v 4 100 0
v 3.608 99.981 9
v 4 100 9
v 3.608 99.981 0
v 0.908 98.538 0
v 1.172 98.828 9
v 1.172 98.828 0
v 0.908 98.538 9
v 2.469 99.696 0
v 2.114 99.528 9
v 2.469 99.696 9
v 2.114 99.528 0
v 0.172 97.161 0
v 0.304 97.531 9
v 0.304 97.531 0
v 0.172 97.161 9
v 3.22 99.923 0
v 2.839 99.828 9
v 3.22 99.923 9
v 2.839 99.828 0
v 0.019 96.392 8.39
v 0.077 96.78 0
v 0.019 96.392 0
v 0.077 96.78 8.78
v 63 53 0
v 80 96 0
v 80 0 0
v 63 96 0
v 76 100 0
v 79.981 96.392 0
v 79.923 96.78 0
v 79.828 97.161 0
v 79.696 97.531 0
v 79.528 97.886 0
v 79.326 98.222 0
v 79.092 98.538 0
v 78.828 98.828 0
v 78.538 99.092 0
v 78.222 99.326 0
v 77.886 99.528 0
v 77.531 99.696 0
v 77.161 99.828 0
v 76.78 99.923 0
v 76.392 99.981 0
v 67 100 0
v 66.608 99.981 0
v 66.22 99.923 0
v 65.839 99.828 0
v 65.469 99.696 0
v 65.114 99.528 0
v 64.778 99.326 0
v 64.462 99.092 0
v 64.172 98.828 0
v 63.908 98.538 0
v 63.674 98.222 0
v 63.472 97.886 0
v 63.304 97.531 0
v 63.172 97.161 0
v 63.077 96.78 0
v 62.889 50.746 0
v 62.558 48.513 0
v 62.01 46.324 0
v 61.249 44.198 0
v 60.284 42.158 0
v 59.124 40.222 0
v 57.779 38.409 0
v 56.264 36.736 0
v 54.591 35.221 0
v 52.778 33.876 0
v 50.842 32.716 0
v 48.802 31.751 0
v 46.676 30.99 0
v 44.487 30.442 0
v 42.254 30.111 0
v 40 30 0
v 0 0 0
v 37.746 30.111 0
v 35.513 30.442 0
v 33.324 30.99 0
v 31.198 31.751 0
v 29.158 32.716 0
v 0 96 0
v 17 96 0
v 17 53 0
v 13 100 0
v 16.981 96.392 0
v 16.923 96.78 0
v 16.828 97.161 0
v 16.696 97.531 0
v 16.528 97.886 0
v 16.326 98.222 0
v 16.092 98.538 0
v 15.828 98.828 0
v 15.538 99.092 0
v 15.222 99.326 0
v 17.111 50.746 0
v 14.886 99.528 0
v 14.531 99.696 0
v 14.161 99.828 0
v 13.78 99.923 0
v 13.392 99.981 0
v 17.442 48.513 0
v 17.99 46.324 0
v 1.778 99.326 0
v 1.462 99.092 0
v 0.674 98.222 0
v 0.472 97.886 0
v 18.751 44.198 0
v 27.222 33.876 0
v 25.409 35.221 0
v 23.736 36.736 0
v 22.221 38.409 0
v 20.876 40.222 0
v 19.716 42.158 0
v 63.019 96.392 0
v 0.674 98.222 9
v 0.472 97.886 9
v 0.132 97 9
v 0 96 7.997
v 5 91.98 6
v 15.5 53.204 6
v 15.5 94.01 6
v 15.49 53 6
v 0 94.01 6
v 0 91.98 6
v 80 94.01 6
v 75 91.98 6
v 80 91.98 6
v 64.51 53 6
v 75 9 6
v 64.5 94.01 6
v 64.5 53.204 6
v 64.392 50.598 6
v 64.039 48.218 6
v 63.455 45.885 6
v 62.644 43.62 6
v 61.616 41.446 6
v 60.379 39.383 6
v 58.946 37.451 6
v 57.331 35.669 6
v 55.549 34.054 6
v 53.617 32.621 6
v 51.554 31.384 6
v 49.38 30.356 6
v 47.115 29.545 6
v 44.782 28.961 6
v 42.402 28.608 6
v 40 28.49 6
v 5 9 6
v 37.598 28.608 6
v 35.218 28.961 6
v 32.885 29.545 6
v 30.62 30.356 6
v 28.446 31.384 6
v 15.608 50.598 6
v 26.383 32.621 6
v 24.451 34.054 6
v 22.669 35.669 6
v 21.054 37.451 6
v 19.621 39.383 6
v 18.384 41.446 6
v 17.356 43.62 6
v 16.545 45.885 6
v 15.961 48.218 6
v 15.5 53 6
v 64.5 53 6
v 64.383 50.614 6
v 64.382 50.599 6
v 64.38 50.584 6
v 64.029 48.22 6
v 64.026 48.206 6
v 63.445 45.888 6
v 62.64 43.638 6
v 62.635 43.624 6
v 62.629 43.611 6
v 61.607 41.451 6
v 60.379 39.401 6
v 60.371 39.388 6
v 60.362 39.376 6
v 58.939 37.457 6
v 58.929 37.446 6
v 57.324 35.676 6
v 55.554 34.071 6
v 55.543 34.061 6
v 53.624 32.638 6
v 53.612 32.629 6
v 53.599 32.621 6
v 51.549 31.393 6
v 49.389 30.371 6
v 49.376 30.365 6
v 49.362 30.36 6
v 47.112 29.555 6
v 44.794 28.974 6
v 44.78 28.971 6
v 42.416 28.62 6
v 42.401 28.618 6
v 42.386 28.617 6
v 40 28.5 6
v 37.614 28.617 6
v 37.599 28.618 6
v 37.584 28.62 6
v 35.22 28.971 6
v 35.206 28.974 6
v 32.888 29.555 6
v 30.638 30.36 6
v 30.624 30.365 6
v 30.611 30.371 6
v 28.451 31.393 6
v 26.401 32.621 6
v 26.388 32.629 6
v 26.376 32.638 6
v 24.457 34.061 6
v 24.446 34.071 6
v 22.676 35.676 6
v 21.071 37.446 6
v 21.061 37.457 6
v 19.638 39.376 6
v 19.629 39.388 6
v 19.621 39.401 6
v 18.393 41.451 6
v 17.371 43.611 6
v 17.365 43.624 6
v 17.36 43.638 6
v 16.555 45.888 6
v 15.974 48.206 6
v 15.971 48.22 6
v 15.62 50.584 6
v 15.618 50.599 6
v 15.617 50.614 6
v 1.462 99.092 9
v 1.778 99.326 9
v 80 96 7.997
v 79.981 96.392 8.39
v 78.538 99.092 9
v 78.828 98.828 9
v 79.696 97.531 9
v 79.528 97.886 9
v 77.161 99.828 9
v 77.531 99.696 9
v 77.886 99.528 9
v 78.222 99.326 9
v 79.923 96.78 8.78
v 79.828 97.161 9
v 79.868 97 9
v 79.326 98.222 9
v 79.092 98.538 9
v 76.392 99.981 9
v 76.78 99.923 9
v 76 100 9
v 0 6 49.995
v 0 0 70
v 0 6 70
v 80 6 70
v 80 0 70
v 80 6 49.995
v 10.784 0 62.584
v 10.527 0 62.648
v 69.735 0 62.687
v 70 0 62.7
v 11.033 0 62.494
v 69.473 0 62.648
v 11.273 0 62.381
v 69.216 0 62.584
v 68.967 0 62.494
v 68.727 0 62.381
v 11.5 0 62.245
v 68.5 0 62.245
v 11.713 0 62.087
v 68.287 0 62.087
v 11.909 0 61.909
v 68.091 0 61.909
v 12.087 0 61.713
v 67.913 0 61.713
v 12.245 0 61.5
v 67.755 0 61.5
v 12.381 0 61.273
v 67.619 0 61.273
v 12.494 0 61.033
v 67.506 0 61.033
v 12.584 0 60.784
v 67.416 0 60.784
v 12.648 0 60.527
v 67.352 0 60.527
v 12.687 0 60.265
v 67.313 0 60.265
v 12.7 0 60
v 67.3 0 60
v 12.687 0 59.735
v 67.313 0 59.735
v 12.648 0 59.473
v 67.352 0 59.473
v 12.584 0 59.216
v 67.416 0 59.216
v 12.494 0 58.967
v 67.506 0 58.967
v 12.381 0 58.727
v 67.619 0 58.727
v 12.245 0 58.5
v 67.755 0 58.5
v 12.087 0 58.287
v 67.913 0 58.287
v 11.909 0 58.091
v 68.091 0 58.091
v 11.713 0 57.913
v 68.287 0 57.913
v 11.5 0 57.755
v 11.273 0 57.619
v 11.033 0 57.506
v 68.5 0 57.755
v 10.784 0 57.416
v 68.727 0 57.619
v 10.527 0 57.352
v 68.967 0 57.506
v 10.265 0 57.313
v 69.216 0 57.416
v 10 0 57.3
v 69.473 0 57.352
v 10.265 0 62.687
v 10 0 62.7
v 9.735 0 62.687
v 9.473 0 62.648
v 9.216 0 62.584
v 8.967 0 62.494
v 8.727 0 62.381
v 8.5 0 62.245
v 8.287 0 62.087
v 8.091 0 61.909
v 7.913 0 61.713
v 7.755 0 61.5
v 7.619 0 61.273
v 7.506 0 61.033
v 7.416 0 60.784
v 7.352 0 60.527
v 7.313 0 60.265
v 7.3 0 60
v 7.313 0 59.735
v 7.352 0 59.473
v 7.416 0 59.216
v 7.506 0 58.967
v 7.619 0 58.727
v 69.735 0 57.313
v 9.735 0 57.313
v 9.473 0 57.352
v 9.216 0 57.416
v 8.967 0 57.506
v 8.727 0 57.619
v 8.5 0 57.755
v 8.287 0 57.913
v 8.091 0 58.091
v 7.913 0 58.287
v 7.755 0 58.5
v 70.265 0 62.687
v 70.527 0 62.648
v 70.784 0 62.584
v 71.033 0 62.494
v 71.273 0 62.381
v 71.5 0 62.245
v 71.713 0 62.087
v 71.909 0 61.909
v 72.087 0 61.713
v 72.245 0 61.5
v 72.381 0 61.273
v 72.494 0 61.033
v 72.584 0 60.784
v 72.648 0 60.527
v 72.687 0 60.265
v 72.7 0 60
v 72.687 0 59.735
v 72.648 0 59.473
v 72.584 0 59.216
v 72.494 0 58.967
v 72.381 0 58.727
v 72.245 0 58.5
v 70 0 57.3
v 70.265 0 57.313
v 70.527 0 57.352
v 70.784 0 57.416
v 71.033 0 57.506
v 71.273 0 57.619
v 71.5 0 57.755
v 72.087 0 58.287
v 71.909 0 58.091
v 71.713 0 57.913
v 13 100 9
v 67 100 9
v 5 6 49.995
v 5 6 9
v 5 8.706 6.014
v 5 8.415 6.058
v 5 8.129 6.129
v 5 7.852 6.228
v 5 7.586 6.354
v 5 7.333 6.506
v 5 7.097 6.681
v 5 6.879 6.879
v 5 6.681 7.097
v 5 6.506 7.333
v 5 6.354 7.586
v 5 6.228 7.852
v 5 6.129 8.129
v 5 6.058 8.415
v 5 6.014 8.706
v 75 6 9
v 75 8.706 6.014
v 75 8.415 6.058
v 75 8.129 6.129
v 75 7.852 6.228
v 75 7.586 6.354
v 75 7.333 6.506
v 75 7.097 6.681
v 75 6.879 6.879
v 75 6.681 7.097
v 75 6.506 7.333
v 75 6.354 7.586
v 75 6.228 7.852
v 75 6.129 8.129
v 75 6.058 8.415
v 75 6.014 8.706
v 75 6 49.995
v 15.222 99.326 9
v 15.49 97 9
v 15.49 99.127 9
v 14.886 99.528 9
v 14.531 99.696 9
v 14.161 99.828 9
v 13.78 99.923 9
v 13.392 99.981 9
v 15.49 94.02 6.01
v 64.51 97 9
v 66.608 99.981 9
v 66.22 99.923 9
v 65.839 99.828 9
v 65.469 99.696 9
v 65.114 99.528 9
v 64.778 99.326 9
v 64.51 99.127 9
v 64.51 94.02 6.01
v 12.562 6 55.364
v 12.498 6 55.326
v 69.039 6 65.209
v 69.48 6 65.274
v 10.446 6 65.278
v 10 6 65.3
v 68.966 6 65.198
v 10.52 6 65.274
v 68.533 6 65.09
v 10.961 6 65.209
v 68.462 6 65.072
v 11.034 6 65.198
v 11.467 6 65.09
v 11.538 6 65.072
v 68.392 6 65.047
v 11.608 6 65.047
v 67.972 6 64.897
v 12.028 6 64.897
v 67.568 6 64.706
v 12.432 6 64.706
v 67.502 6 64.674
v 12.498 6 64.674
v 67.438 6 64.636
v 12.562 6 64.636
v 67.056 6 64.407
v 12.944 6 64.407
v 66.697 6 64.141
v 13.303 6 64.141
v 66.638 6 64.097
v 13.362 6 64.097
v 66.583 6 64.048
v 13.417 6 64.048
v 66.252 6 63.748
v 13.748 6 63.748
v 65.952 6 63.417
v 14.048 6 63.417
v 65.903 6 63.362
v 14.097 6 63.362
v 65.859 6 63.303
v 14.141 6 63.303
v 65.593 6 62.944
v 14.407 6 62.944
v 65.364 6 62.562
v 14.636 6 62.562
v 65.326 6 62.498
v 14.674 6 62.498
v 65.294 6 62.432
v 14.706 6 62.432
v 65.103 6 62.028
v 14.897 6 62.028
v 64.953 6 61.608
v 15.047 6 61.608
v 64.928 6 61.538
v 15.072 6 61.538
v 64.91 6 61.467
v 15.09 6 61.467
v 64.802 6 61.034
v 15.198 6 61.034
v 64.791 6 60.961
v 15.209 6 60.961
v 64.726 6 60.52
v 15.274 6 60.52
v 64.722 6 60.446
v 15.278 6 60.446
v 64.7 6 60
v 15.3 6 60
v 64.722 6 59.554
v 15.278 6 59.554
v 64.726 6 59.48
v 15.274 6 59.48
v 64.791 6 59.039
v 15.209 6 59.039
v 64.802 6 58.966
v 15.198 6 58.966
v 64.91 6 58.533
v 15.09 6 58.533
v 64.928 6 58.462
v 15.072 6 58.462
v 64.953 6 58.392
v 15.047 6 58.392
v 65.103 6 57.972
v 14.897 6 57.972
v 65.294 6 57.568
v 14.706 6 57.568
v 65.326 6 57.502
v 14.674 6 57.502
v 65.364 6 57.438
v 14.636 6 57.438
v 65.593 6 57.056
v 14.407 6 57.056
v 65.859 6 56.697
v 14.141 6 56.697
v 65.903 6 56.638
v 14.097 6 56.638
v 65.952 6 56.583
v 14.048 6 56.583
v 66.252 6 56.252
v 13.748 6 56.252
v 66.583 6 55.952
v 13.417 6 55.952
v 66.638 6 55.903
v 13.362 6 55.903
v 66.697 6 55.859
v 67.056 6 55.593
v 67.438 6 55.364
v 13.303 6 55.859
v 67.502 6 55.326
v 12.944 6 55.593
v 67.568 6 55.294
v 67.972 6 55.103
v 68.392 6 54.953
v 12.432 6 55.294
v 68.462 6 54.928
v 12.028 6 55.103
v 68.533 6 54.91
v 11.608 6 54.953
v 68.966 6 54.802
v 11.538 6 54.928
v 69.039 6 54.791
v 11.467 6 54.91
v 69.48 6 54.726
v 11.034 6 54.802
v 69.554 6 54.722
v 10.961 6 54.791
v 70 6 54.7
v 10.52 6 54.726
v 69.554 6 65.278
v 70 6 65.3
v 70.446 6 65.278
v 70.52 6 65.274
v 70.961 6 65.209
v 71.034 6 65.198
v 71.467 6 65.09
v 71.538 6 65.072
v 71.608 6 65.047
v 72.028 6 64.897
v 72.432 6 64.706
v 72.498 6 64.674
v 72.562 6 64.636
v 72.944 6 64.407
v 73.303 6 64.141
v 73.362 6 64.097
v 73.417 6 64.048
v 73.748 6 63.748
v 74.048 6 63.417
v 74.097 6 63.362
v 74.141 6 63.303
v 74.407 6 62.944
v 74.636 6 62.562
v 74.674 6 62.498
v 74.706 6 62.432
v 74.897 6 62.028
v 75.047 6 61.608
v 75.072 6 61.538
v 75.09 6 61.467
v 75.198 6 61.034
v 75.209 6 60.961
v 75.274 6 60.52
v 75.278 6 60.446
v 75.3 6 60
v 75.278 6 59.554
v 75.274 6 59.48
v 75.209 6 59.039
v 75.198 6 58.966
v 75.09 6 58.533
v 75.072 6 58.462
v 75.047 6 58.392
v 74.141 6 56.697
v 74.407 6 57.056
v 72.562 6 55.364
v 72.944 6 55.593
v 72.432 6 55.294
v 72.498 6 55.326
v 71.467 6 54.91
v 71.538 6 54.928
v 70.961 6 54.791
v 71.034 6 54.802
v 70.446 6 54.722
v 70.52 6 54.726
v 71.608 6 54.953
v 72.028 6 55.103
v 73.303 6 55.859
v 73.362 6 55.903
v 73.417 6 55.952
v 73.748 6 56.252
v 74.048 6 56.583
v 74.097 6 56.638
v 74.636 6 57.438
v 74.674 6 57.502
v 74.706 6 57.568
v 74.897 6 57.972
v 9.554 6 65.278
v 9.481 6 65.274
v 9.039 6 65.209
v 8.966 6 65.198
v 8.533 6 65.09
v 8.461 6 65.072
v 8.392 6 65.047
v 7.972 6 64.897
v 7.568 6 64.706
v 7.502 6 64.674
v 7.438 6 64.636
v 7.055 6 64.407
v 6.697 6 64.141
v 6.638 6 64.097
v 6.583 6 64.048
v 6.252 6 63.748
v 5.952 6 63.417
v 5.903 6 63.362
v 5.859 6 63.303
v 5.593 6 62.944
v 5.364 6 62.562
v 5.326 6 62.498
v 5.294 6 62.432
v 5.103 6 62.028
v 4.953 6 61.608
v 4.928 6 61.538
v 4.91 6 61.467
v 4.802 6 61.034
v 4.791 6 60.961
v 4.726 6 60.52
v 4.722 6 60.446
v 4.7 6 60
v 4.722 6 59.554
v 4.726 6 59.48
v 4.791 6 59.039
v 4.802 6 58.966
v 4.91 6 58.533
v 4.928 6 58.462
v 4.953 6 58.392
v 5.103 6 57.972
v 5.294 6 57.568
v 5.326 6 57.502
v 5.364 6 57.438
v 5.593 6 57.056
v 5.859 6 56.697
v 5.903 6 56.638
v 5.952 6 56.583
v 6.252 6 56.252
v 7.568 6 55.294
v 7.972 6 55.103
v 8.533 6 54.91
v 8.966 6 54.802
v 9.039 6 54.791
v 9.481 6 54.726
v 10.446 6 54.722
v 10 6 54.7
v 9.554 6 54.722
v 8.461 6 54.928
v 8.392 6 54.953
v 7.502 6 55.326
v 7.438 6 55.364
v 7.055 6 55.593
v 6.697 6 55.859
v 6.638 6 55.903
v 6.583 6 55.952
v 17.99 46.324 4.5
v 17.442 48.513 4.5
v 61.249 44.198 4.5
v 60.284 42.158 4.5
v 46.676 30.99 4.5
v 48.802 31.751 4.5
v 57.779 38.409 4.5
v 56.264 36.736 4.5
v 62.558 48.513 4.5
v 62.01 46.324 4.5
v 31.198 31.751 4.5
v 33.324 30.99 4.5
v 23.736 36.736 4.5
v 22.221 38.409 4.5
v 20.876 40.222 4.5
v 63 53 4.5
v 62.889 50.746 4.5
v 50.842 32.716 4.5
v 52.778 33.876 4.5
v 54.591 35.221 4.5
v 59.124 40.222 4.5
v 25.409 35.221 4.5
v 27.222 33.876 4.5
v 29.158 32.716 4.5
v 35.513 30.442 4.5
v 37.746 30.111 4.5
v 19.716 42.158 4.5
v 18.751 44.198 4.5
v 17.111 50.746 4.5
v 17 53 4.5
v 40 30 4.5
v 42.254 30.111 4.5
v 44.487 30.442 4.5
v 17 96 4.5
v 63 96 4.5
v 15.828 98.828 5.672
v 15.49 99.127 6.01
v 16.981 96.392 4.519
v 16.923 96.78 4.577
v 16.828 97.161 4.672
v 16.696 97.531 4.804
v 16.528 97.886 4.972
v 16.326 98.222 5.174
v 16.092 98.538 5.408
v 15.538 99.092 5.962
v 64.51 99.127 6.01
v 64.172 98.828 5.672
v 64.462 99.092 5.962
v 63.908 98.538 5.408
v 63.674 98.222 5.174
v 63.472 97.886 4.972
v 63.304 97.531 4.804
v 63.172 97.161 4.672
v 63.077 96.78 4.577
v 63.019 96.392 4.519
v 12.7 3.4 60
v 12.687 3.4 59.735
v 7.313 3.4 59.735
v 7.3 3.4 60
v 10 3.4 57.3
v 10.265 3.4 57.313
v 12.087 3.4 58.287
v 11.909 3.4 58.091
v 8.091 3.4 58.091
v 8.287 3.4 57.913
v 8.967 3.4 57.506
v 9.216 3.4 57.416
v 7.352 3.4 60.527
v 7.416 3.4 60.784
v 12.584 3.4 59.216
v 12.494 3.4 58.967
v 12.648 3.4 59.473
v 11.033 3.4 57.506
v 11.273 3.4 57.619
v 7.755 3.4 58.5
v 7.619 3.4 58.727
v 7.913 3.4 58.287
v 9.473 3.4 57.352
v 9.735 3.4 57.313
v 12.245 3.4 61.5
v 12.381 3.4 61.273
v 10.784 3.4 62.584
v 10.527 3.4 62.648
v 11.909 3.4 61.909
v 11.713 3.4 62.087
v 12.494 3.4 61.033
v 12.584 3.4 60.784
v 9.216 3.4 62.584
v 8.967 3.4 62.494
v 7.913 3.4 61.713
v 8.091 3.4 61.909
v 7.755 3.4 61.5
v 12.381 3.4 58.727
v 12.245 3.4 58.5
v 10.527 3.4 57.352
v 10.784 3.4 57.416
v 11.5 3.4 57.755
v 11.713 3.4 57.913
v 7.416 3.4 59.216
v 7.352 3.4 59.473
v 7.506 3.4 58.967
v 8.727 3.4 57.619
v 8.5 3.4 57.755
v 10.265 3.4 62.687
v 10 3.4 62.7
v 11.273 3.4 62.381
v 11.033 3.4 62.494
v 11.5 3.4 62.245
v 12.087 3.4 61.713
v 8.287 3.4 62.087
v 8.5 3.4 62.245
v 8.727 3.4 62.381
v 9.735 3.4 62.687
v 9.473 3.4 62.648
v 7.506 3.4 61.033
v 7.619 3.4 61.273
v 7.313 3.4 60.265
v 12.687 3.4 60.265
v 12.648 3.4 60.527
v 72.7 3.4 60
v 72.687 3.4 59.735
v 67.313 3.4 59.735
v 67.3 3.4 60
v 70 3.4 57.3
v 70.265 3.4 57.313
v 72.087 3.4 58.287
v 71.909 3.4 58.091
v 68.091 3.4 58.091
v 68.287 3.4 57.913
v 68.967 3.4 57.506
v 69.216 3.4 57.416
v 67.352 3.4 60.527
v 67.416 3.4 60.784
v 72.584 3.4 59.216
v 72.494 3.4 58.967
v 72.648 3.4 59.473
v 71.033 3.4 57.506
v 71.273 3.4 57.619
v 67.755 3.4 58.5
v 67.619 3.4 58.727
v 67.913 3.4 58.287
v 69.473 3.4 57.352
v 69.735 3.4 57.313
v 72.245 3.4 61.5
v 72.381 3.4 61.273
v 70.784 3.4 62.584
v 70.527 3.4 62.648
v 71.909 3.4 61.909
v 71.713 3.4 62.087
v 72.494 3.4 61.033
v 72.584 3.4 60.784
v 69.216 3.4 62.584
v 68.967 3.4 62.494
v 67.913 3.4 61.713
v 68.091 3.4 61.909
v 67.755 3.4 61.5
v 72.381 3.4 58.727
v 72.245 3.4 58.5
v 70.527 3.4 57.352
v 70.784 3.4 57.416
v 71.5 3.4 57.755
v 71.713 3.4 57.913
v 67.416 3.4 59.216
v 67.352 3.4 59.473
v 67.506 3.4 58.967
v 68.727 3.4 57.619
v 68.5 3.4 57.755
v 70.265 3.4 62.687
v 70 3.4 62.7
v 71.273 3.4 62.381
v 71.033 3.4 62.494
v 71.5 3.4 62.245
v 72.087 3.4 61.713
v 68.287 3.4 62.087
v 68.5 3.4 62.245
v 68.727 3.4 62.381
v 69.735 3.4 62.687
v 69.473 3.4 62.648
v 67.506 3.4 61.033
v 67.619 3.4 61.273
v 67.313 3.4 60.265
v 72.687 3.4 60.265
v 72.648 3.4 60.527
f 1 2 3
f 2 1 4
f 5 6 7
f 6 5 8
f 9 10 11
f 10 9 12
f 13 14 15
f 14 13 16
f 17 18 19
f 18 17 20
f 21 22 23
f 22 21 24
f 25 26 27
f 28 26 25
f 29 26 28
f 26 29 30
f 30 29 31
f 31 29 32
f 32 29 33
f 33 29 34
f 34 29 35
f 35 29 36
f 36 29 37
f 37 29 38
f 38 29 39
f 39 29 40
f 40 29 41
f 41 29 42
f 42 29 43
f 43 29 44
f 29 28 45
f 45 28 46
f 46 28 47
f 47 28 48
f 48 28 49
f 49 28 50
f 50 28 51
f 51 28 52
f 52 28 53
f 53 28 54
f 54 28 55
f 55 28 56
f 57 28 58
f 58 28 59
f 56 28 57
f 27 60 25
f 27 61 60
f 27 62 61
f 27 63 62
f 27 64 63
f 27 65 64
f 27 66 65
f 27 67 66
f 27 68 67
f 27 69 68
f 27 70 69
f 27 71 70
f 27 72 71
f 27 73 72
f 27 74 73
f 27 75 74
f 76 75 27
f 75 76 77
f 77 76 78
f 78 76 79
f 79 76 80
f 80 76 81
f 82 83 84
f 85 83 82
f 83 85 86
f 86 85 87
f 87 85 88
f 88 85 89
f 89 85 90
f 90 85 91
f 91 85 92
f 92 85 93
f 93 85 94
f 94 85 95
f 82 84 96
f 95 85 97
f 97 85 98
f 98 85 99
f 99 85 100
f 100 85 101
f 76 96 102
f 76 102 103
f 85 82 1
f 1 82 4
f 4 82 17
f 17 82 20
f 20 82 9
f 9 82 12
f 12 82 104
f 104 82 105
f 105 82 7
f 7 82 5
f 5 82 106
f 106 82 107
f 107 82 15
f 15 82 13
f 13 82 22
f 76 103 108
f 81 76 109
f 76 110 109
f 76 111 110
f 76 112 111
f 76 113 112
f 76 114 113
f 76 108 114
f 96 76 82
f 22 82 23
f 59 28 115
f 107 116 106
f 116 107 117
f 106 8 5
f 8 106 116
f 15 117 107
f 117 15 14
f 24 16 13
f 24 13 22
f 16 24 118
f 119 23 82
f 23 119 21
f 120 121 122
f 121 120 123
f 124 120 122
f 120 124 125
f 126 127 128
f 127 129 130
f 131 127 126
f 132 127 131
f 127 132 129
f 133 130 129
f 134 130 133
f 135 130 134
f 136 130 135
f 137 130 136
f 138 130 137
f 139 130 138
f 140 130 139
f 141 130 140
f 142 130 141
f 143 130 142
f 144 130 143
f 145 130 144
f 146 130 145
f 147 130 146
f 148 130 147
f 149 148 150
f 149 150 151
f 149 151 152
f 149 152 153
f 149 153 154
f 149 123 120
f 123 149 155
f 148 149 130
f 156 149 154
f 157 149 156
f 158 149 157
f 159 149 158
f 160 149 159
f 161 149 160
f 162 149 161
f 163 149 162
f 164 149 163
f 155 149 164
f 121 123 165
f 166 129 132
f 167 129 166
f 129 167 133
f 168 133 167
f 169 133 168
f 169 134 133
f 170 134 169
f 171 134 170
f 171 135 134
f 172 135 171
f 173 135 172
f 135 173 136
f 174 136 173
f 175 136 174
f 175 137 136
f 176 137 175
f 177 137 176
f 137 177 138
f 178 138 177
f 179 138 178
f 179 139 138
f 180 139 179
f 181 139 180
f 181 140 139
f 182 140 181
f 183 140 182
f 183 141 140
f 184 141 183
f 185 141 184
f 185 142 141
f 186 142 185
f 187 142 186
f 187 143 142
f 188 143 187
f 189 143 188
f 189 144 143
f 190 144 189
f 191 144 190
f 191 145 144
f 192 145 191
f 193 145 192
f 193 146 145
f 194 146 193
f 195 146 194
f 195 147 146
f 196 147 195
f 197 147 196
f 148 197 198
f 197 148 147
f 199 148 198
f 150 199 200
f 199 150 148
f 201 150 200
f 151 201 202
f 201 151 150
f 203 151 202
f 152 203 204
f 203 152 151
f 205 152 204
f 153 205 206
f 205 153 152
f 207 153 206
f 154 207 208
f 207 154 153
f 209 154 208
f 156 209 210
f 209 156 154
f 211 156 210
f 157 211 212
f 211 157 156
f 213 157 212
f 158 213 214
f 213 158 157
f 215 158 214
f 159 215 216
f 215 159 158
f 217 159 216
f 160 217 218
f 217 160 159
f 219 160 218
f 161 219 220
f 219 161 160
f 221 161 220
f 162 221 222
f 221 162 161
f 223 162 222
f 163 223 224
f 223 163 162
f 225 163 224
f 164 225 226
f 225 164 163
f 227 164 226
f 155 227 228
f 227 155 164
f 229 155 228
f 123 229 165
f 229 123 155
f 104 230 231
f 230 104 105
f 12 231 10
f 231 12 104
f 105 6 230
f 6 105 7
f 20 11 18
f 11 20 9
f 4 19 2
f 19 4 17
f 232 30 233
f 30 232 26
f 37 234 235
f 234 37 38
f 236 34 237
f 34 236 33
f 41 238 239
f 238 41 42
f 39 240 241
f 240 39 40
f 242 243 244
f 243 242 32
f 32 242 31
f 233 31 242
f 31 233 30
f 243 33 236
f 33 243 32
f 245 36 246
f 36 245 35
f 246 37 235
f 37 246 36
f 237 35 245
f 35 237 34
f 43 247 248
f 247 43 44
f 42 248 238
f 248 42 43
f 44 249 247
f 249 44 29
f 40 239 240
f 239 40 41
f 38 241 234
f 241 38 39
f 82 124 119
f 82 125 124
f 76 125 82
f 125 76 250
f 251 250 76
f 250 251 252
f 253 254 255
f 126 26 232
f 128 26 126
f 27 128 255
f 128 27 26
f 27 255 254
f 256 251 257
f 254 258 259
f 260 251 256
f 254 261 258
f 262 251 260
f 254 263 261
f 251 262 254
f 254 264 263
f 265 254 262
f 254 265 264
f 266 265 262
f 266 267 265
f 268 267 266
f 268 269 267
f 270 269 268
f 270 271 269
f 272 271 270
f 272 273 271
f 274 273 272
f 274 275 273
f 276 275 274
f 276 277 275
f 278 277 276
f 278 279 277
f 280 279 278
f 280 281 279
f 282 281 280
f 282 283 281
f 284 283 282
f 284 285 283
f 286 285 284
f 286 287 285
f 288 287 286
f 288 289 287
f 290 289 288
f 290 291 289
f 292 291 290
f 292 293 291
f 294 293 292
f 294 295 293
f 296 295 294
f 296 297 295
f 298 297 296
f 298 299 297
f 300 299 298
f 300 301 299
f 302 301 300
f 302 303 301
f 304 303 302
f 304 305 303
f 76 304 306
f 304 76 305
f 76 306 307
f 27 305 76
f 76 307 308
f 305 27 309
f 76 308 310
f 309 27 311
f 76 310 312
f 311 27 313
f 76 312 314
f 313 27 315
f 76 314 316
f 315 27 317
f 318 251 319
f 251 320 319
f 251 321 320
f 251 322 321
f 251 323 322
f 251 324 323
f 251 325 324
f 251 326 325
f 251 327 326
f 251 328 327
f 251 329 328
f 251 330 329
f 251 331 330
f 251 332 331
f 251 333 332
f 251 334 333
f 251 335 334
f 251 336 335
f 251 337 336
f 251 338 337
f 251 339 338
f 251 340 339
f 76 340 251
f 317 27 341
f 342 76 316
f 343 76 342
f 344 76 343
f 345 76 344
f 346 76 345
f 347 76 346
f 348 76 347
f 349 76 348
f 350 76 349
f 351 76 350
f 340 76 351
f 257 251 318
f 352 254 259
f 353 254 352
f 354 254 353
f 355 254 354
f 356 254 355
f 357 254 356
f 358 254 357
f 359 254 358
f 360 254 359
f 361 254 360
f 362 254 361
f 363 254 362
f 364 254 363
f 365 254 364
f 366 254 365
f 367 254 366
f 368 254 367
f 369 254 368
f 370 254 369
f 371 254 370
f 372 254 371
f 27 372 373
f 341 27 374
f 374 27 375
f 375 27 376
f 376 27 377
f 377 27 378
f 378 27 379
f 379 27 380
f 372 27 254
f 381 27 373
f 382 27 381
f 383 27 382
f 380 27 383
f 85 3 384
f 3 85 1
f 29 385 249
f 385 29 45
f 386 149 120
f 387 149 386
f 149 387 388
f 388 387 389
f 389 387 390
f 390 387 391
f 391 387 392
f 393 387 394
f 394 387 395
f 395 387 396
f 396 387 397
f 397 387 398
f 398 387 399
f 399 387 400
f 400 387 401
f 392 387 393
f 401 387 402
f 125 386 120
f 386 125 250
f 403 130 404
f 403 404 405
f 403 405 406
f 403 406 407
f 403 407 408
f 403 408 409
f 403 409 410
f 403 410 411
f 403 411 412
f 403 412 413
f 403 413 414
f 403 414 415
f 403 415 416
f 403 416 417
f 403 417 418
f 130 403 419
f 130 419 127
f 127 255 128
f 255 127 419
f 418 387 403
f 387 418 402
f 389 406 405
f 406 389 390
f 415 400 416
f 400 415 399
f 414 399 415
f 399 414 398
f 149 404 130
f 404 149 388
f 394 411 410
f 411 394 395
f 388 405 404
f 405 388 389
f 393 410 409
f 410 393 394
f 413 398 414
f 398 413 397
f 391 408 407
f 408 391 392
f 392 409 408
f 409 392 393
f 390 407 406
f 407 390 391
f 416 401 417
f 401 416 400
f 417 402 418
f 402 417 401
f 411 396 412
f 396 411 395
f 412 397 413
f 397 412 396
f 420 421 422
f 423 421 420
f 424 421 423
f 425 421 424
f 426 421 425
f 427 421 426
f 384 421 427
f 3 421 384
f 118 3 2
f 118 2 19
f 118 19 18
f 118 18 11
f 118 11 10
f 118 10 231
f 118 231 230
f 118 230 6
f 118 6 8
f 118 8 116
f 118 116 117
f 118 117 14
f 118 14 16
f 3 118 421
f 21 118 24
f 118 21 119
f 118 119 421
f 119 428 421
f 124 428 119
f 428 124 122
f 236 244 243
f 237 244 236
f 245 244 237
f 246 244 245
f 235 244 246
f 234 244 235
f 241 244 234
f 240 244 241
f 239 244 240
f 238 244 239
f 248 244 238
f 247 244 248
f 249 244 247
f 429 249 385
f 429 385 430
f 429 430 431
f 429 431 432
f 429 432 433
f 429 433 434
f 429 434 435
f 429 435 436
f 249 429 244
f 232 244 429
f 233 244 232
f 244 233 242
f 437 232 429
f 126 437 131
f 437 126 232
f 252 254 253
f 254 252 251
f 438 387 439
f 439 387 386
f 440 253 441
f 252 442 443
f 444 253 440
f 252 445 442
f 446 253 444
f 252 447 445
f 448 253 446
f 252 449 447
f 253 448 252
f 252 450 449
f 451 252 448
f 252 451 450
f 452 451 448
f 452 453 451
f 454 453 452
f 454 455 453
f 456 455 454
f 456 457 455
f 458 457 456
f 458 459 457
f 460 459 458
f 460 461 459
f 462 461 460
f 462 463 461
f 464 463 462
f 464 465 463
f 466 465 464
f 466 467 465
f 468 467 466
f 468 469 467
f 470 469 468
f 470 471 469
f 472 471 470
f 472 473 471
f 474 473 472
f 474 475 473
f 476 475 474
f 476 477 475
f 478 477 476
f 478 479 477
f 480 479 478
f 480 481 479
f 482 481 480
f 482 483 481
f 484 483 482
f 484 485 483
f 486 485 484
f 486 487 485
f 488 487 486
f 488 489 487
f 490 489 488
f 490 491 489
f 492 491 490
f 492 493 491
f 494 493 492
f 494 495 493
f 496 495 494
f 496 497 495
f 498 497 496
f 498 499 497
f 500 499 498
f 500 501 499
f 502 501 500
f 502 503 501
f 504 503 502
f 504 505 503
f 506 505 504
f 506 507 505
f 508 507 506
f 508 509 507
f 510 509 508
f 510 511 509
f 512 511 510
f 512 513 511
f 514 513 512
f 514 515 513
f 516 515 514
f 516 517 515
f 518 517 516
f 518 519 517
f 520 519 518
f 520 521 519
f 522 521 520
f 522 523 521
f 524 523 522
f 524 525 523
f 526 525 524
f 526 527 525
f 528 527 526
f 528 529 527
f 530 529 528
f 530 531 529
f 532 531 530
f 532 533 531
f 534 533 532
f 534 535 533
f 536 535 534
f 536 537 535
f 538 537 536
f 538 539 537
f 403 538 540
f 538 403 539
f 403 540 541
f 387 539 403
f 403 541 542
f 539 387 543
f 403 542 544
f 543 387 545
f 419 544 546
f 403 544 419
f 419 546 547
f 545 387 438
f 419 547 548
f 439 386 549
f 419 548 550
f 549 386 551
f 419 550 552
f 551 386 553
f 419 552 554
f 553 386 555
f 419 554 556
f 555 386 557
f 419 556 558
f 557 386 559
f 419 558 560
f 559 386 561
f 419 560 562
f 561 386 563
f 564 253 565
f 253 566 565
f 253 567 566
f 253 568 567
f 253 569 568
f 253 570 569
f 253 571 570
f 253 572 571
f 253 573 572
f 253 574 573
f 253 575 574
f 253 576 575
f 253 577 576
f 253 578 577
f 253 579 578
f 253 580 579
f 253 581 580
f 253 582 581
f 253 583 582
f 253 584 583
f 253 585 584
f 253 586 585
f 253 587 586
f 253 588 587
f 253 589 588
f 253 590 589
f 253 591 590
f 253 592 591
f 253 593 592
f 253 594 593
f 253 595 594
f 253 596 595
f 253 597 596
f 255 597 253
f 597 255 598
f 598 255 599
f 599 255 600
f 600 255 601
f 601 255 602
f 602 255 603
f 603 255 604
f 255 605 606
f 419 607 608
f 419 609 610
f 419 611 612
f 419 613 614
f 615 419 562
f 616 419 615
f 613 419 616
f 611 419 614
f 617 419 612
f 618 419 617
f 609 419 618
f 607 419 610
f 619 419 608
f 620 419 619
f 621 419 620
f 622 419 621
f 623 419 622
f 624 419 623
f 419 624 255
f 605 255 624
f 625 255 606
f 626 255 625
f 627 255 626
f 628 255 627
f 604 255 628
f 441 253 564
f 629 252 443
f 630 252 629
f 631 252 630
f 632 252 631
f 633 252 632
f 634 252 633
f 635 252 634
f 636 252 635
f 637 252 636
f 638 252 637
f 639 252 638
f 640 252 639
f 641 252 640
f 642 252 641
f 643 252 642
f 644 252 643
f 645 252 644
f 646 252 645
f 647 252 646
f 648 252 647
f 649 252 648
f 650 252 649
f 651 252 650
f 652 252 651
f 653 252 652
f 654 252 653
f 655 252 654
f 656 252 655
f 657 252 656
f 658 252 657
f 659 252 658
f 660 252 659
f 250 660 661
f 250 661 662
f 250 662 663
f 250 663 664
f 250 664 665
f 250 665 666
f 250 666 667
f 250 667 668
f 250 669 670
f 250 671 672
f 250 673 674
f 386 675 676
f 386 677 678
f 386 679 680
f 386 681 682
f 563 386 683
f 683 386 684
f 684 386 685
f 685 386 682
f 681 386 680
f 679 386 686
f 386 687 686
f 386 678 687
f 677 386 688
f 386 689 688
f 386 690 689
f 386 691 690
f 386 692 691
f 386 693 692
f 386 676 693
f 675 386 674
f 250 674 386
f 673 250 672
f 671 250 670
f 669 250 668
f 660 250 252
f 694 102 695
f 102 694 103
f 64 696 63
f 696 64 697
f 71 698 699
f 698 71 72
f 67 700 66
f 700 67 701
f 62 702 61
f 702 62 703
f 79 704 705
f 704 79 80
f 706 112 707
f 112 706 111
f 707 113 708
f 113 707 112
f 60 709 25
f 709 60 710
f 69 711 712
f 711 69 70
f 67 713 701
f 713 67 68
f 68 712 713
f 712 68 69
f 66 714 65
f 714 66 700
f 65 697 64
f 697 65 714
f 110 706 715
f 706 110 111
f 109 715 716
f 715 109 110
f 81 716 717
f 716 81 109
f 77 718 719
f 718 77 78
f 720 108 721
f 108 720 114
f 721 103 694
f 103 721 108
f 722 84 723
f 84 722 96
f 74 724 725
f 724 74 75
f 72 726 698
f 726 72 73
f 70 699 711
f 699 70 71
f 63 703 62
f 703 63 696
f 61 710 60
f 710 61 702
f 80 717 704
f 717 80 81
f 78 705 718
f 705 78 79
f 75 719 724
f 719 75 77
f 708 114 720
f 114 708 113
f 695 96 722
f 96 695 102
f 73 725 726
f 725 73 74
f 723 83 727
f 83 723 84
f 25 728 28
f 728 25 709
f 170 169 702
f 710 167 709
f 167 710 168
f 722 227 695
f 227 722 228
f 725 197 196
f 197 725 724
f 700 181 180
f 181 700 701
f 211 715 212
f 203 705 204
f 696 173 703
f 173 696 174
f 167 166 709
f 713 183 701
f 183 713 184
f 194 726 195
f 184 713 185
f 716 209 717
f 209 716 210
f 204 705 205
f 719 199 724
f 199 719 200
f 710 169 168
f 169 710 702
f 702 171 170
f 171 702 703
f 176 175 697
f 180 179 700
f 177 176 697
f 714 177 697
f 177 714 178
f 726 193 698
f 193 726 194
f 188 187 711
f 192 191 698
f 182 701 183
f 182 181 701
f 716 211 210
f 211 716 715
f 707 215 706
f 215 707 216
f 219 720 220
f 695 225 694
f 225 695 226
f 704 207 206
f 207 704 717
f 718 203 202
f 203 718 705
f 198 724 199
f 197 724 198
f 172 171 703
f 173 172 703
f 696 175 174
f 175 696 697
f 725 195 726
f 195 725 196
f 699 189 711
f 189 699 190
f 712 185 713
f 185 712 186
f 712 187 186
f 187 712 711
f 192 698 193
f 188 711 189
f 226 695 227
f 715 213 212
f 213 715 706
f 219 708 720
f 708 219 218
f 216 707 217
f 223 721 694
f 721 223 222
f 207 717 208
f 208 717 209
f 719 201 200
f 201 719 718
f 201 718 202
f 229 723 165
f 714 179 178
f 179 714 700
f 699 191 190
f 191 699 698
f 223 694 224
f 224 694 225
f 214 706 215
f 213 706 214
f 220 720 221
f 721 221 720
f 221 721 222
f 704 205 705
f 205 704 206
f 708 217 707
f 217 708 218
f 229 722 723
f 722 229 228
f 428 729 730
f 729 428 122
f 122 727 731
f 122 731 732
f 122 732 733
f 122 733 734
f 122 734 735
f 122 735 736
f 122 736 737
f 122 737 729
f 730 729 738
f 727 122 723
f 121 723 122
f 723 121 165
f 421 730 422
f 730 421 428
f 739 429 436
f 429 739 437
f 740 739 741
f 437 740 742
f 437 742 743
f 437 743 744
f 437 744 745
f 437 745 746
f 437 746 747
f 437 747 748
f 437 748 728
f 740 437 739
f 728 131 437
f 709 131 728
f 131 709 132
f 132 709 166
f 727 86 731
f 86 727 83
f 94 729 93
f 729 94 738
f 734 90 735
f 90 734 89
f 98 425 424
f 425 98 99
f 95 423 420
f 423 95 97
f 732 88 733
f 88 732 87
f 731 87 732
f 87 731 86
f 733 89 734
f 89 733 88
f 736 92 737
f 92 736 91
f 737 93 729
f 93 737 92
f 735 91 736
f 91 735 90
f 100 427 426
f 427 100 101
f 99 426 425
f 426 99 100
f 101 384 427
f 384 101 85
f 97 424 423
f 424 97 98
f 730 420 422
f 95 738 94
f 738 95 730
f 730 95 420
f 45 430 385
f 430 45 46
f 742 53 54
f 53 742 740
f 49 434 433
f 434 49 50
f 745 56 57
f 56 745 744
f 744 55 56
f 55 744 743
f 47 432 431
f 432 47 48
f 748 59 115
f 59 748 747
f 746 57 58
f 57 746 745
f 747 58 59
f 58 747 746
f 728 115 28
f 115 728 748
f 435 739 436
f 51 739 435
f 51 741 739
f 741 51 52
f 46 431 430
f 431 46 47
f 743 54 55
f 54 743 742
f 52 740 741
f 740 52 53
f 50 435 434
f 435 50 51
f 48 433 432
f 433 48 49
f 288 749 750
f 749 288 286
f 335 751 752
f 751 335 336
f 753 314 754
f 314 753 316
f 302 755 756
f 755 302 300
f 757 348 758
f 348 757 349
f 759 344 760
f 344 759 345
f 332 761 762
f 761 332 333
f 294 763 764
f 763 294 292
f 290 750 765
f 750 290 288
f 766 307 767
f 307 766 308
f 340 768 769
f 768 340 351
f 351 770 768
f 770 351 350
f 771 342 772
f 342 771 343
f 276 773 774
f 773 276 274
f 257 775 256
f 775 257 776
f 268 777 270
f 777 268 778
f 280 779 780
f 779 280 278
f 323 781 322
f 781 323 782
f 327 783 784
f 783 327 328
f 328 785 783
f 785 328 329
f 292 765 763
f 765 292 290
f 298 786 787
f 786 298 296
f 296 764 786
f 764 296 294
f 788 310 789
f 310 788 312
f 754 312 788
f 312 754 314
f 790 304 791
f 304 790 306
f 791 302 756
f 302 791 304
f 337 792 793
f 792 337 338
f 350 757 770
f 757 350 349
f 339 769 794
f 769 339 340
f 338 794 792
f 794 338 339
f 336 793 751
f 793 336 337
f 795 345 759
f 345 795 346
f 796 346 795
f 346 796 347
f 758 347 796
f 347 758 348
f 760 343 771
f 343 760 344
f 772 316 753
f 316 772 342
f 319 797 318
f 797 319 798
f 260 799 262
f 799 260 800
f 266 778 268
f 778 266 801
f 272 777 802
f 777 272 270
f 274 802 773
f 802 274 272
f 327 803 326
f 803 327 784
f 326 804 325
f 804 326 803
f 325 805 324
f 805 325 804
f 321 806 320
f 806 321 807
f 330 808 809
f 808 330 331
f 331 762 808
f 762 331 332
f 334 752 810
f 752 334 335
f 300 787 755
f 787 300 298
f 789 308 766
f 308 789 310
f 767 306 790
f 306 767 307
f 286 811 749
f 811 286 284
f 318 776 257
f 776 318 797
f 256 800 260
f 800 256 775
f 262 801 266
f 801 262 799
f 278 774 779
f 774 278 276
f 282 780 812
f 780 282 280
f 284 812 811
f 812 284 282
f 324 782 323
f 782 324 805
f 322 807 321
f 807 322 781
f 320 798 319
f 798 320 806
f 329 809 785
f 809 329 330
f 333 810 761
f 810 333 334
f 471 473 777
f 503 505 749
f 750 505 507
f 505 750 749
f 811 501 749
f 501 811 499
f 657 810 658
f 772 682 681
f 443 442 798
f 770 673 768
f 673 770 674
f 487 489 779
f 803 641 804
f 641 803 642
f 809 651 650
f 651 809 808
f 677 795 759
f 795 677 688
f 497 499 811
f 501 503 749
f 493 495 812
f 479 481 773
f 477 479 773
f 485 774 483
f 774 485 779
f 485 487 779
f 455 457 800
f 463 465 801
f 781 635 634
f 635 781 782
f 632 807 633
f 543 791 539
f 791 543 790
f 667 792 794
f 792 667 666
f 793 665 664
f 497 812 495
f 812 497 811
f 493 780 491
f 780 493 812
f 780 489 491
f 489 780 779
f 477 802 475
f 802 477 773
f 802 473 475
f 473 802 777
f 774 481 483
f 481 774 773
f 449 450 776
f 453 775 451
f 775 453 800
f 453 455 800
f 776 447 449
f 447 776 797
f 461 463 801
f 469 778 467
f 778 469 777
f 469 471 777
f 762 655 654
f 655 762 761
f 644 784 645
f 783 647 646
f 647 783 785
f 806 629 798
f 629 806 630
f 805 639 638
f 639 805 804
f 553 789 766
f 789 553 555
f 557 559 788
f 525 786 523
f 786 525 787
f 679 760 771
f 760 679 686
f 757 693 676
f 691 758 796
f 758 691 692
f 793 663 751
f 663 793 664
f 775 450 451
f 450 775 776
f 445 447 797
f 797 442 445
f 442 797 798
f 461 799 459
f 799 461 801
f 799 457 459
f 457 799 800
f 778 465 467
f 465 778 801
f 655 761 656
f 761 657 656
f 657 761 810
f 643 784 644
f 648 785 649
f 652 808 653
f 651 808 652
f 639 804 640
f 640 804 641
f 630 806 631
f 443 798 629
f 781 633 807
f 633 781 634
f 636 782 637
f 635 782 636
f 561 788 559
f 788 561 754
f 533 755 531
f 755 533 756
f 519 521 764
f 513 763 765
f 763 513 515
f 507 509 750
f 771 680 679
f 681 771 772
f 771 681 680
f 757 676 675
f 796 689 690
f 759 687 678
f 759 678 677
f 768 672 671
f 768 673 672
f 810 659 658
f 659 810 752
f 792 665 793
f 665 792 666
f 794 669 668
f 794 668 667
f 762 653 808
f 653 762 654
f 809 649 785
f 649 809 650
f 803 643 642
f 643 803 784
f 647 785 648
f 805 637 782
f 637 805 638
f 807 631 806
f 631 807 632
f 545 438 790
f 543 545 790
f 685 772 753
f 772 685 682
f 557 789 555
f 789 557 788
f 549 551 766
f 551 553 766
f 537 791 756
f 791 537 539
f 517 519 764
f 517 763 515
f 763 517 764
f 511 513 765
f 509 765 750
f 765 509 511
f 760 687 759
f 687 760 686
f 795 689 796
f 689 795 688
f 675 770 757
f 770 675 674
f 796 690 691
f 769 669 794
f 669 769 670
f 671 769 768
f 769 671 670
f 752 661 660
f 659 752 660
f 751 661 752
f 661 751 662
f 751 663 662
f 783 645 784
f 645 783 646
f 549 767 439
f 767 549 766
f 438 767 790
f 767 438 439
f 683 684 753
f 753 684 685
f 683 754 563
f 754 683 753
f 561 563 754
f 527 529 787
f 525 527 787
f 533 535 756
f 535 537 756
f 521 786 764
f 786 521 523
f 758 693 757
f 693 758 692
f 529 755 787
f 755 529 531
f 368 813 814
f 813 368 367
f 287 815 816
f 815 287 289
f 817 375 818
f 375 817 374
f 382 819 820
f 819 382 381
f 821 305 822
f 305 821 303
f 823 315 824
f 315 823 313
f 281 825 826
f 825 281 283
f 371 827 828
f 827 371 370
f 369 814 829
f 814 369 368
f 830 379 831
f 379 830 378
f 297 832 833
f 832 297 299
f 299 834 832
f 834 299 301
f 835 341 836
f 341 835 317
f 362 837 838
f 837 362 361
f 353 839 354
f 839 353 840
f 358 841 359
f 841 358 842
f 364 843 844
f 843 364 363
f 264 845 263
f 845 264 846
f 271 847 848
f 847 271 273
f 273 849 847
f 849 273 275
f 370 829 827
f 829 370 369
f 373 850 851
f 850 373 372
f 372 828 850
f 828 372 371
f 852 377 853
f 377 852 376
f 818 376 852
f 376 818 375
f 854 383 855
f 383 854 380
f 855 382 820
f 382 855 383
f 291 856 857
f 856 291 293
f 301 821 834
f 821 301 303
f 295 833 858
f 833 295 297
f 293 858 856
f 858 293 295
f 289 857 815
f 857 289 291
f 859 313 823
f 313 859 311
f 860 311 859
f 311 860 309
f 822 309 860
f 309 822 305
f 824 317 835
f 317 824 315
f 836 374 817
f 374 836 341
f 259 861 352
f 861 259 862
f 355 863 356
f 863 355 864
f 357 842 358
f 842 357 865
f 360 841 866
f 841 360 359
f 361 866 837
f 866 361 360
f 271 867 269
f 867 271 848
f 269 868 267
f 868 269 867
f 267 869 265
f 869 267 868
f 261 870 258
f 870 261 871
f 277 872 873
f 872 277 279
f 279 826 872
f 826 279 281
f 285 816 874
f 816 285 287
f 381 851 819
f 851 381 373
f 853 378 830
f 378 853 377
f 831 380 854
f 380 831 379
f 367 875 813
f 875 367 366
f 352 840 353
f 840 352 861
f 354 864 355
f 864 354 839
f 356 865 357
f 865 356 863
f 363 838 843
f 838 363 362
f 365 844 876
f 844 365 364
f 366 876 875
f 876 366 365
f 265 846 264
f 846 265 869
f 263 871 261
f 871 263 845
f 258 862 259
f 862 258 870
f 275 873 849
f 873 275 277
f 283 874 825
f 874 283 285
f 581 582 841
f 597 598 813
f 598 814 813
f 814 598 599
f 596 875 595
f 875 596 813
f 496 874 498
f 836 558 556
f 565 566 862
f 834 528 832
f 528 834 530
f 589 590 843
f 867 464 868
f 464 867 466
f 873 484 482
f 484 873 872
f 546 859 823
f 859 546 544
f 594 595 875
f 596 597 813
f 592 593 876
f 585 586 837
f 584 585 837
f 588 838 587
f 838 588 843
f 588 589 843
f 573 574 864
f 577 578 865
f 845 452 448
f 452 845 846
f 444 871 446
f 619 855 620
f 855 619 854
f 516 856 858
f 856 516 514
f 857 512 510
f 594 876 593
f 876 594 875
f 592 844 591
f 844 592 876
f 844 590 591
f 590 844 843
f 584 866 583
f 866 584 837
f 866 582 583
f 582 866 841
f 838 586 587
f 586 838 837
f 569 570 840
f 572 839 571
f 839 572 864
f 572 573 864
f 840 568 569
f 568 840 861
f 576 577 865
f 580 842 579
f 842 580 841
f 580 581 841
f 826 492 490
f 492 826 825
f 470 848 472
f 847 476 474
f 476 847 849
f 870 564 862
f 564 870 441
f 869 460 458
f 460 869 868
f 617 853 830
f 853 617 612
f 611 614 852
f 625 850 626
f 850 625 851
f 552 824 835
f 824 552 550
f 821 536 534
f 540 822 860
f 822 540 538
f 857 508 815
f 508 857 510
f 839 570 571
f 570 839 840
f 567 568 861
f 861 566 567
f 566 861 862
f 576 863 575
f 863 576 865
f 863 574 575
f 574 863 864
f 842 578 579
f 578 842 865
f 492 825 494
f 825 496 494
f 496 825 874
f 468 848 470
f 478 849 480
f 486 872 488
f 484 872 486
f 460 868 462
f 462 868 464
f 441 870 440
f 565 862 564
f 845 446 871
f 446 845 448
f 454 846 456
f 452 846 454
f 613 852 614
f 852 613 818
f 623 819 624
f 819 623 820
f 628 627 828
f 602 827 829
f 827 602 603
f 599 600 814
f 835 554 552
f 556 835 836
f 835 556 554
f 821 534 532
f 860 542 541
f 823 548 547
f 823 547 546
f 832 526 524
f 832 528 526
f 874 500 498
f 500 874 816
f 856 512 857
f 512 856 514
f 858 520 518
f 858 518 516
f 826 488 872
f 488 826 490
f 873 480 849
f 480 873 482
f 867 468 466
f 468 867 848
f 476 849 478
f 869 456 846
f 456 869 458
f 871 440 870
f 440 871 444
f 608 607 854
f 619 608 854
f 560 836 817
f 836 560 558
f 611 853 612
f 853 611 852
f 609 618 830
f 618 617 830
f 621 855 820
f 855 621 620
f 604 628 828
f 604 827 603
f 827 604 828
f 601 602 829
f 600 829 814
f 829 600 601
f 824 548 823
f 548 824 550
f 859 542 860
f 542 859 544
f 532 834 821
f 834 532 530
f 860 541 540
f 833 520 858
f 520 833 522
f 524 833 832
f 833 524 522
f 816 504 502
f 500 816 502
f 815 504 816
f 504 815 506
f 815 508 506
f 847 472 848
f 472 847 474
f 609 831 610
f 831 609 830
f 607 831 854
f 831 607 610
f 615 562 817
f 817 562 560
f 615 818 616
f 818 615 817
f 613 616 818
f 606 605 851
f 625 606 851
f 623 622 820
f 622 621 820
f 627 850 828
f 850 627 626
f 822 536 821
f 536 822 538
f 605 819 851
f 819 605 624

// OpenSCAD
// ==========================================
// Proyecto: piezas3D
// Componente: Soporte de pared para taladro
// Descripción: soporte paramétrico de pared para colgar un taladro inalámbrico por el portabrocas
// ==========================================
//
// Ejes: X = ancho (paralelo a la pared), Y = profundidad (la pared está en Y = 0),
// Z = altura (la cara inferior de la bandeja está en Z = 0). La pieza se modela en la
// orientación de impresión: bandeja sobre la cama, placa trasera y cartelas en vertical.
// Especificación: specs/001-soporte-pared-taladro/

// --- PARÁMETROS Y CONSTANTES ---

/* [Dimensiones principales] */
// Ancho total de la pieza a lo largo de la pared (mm)
ancho = 80; // [50:1:150]
// Vuelo de la bandeja medido desde la pared (mm)
profundidad = 100; // [60:1:160]
// Diámetro nominal de los tornillos de fijación a pared (mm)
diametro_tornillo = 5; // [3:0.5:8]

/* [Taladro] */
// Ancho de la ranura por la que pasa el portabrocas (mm)
ancho_ranura = 46; // [30:1:60]
// Diámetro del cuerpo o caja de engranajes del taladro; solo se usa para validar holguras (mm)
diametro_cuerpo_taladro = 60; // [40:1:90]

/* [Estructura] */
// Espesor de la bandeja y de la placa trasera (mm)
espesor = 6; // [4:0.5:10]
// Altura total de la placa trasera (mm)
altura_placa = 70; // [50:1:120]
// Espesor de cada cartela lateral de refuerzo (mm)
espesor_cartela = 5; // [3:0.5:10]

/* [Detalles] */
// Holgura de paso añadida al diámetro del tornillo (mm)
holgura_tornillo = 0.4; // [0.2:0.05:1.0]
// Altura del labio de retención frontal; 0 lo desactiva (mm)
altura_labio = 3; // [0:0.5:4.5]
// Chaflán a 45° del borde superior de la ranura; 0 lo desactiva (mm)
chaflan_ranura = 1.5; // [0:0.5:3]
// Radio de las esquinas frontales y de la boca de la ranura; 0 las deja vivas (mm)
radio_esquinas = 4; // [0:0.5:10]
// Radio del filete interior entre placa y bandeja; 0 lo desactiva (mm)
radio_filete = 3; // [0:0.5:6]

/* [Calidad] */
// Resolución de las superficies curvas (segmentos por circunferencia)
$fn = 64; // [24:8:128]

/* [Hidden] */
// Constantes de diseño (data-model.md, Entidad 2)
longitud_labio = 6;                          // longitud en Y del labio de retención
holgura_cuerpo_min = longitud_labio + 2;     // holgura mínima cuerpo-placa y cuerpo-labio
margen_cuerpo_carril = 8;                    // apoyo mínimo del cuerpo sobre los carriles (total)
holgura_cuerpo_cartela = 2;                  // holgura mínima entre el cuerpo y las cartelas
altura_cartela_min_util = 10;                // altura útil mínima de cartela bajo los tornillos
espesor_min_pared = 1.2;                     // 3 líneas de extrusión de 0,4 mm (FR-012)
espesor_min_bajo_avellanado = 1.5;           // placa mínima bajo la cabeza del tornillo
rebaje_cabeza = 0.3;                         // la cabeza queda por debajo de la superficie
eps = 0.01;                                  // solape para evitar caras coplanarias

// Valores derivados
diametro_orificio = diametro_tornillo + holgura_tornillo;
diametro_cabeza = 2 * diametro_tornillo;
profundidad_avellanado = (diametro_cabeza - diametro_orificio) / 2 + rebaje_cabeza;
ancho_carril = (ancho - ancho_ranura) / 2;
radio_ranura = ancho_ranura / 2;
centro_ranura_y = espesor + (profundidad - espesor) / 2;
fondo_ranura_y = centro_ranura_y - radio_ranura;
tornillo_z = altura_placa - diametro_cabeza;
tornillo_x = [diametro_cabeza, ancho - diametro_cabeza];
altura_cartela = tornillo_z - diametro_cabeza;
fin_cartela_y = profundidad - longitud_labio - 2;
// Los dos redondeos de la punta de cada carril (exterior y boca) no pueden solaparse
radio_esquinas_util = min(radio_esquinas, ancho_carril / 2 - eps);

// Parámetros públicos: [nombre, valor, [mínimo, máximo], unidad] (regla V-01)
parametros_publicos = [
    ["ancho", ancho, [50, 150], " mm"],
    ["profundidad", profundidad, [60, 160], " mm"],
    ["diametro_tornillo", diametro_tornillo, [3, 8], " mm"],
    ["ancho_ranura", ancho_ranura, [30, 60], " mm"],
    ["diametro_cuerpo_taladro", diametro_cuerpo_taladro, [40, 90], " mm"],
    ["espesor", espesor, [4, 10], " mm"],
    ["altura_placa", altura_placa, [50, 120], " mm"],
    ["espesor_cartela", espesor_cartela, [3, 10], " mm"],
    ["holgura_tornillo", holgura_tornillo, [0.2, 1.0], " mm"],
    ["altura_labio", altura_labio, [0, 4.5], " mm"],
    ["chaflan_ranura", chaflan_ranura, [0, 3], " mm"],
    ["radio_esquinas", radio_esquinas, [0, 10], " mm"],
    ["radio_filete", radio_filete, [0, 6], " mm"],
    ["$fn", $fn, [24, 128], " segmentos"]
];

function en_rango(valor, rango) = is_num(valor) && valor >= rango[0] && valor <= rango[1];

// Suma de los elementos de un vector
function suma(v, i = 0) = i >= len(v) ? 0 : v[i] + suma(v, i + 1);

// Área con signo de un perfil 2D (positiva si los vértices van en sentido antihorario)
function area_perfil(p) =
    0.5 * suma([for (i = [0:len(p) - 1])
        p[i][0] * p[(i + 1) % len(p)][1] - p[(i + 1) % len(p)][0] * p[i][1]]);

// --- VALIDACIÓN DE PARÁMETROS ---
// Reglas V-01 a V-10 de data-model.md, en orden. Cada mensaje empieza por el parámetro
// principal implicado (contracts/interfaz_generador.md §2.2).

// V-01: cada parámetro es numérico y está dentro de su rango
for (p = parametros_publicos)
    assert(en_rango(p[1], p[2]),
        str(p[0], "=", p[1], ": fuera de rango [", p[2][0], ", ", p[2][1], "]", p[3]));

// V-02: material suficiente a cada lado de la ranura
assert(ancho_carril >= 2 * espesor,
    str("ancho_ranura=", ancho_ranura, ": deja carriles de ", ancho_carril,
        " mm; con espesor=", espesor, " se necesitan al menos ", 2 * espesor,
        " mm (reduzca ancho_ranura o aumente ancho)"));

// V-03: margen de la cabeza del tornillo a los bordes laterales
assert(ancho >= 4 * diametro_cabeza,
    str("diametro_tornillo=", diametro_tornillo, ": la cabeza de ", diametro_cabeza,
        " mm necesita ancho >= ", 4 * diametro_cabeza, " mm y ancho=", ancho,
        " (reduzca diametro_tornillo o aumente ancho)"));

// V-04: el avellanado no atraviesa la placa
assert(espesor - profundidad_avellanado >= espesor_min_bajo_avellanado,
    str("diametro_tornillo=", diametro_tornillo, ": el avellanado de ", profundidad_avellanado,
        " mm deja ", espesor - profundidad_avellanado, " mm de placa; se necesitan al menos ",
        espesor_min_bajo_avellanado, " mm (aumente espesor o reduzca diametro_tornillo)"));

// V-05: la placa deja cartela útil por debajo de los tornillos
assert(altura_cartela - espesor >= 2 * radio_filete + altura_cartela_min_util,
    str("altura_placa=", altura_placa, ": deja cartelas de ", altura_cartela - espesor,
        " mm bajo los tornillos; se necesitan al menos ", 2 * radio_filete + altura_cartela_min_util,
        " mm (aumente altura_placa o reduzca diametro_tornillo)"));

// V-06: holgura del cuerpo del taladro con la placa y con el labio
assert(profundidad >= espesor + diametro_cuerpo_taladro + 2 * holgura_cuerpo_min,
    str("profundidad=", profundidad, ": con diametro_cuerpo_taladro=", diametro_cuerpo_taladro,
        " se necesitan al menos ", espesor + diametro_cuerpo_taladro + 2 * holgura_cuerpo_min,
        " mm (aumente profundidad o reduzca diametro_cuerpo_taladro)"));

// V-07: el cuerpo apoya sobre los carriles y no cae por la ranura
assert(diametro_cuerpo_taladro >= ancho_ranura + margen_cuerpo_carril,
    str("diametro_cuerpo_taladro=", diametro_cuerpo_taladro, ": cabría por la ranura de ",
        ancho_ranura, " mm; debe ser al menos ", ancho_ranura + margen_cuerpo_carril,
        " mm (revise la medida o reduzca ancho_ranura)"));

// V-08: el cuerpo no choca con las cartelas
assert(diametro_cuerpo_taladro <= ancho - 2 * espesor_cartela - holgura_cuerpo_cartela,
    str("diametro_cuerpo_taladro=", diametro_cuerpo_taladro, ": choca con las cartelas; con ancho=",
        ancho, " y espesor_cartela=", espesor_cartela, " el máximo es ",
        ancho - 2 * espesor_cartela - holgura_cuerpo_cartela,
        " mm (aumente ancho o reduzca espesor_cartela)"));

// V-09 (defensiva): material entre el fondo de la ranura y la placa
assert(fondo_ranura_y - espesor >= espesor,
    str("profundidad=", profundidad, ": el fondo de la ranura queda a ", fondo_ranura_y - espesor,
        " mm de la placa; se necesitan al menos ", espesor, " mm (aumente profundidad)"));

// V-10 (defensiva): la cartela no invade el chaflán de la ranura
assert(espesor_cartela <= ancho_carril - chaflan_ranura,
    str("espesor_cartela=", espesor_cartela, ": invade el chaflán de la ranura; el máximo es ",
        ancho_carril - chaflan_ranura, " mm (reduzca espesor_cartela o chaflan_ranura)"));

// --- MÓDULOS PRINCIPALES Y ENSAMBLAJE ---
ensamblaje_principal();

// Pieza completa: cuerpos sólidos menos vaciados (FR-001)
module ensamblaje_principal() {
    difference() {
        union() {
            placa_trasera();
            bandeja();
            cartelas();
            filete_interior();
            labios_retencion();
        }
        vaciado_ranura();
        vaciado_tornillos();
    }
}

// Placa vertical que apoya en la pared (FR-001)
module placa_trasera() {
    cube([ancho, espesor, altura_placa]);
}

// Prisma recto de perfil convexo (Y, Z) extruido a lo largo de X entre x0 y x0 + longitud.
// Se genera como polyhedron (y no con linear_extrude) para que el CSG exportado se importe
// correctamente en FreeCAD 1.1 (research.md R10)
module prisma_yz(perfil, x0, longitud) {
    n = len(perfil);
    p = area_perfil(perfil) >= 0 ? perfil : [for (i = [n - 1:-1:0]) perfil[i]];
    polyhedron(
        points = concat([for (q = p) [x0, q[0], q[1]]],
                        [for (q = p) [x0 + longitud, q[0], q[1]]]),
        faces = concat([[for (i = [0:n - 1]) i]],
                       [[for (i = [n - 1:-1:0]) n + i]],
                       [for (i = [0:n - 1]) [i, n + i, n + (i + 1) % n, (i + 1) % n]]));
}

// Contorno en planta de la bandeja con las esquinas frontales redondeadas, como sólido
// entre z0 y z0 + altura (FR-003)
module cuerpo_contorno(z0, altura) {
    translate([0, 0, z0]) {
        if (radio_esquinas_util > 0) {
            cube([ancho, profundidad - radio_esquinas_util, altura]);
            translate([radio_esquinas_util, 0, 0])
                cube([ancho - 2 * radio_esquinas_util, profundidad, altura]);
            for (x = [radio_esquinas_util, ancho - radio_esquinas_util])
                translate([x, profundidad - radio_esquinas_util, 0])
                    cylinder(r = radio_esquinas_util, h = altura);
        } else {
            cube([ancho, profundidad, altura]);
        }
    }
}

// Volumen vertical con el contorno de la bandeja; recorta lo que no debe sobresalir de ella
module volumen_contorno() {
    cuerpo_contorno(-1, altura_placa + 2);
}

// Bandeja horizontal en voladizo (FR-001)
module bandeja() {
    cuerpo_contorno(0, espesor);
}

// Dos cartelas laterales en los bordes de la pieza (FR-001, R1). Perfil (Y, Z): triángulo
// apoyado en la bandeja y en la placa
module cartelas() {
    perfil_cartela = [
        [espesor - eps, espesor - eps],
        [fin_cartela_y, espesor - eps],
        [espesor - eps, altura_cartela]
    ];
    intersection() {
        union() {
            for (x = [0, ancho - espesor_cartela])
                prisma_yz(perfil_cartela, x, espesor_cartela);
        }
        volumen_contorno();
    }
}

// Filete cóncavo en la arista interior placa-bandeja (R1)
module filete_interior() {
    if (radio_filete > 0) {
        difference() {
            translate([0, espesor - eps, espesor - eps])
                cube([ancho, radio_filete + eps, radio_filete + eps]);
            translate([-1, espesor + radio_filete, espesor + radio_filete])
                rotate([0, 90, 0])
                    cylinder(r = radio_filete, h = ancho + 2);
        }
    }
}

// Labios de retención en el borde frontal de cada carril (R3). Perfil (Y, Z): cara frontal
// vertical y cara trasera a 45° hacia el taladro
module labios_retencion() {
    if (altura_labio > 0) {
        perfil_labio = [
            [profundidad - longitud_labio, espesor - eps],
            [profundidad, espesor - eps],
            [profundidad, espesor + altura_labio],
            [profundidad - longitud_labio + altura_labio, espesor + altura_labio]
        ];
        intersection() {
            union() {
                for (x = [0, ancho - ancho_carril])
                    prisma_yz(perfil_labio, x, ancho_carril);
            }
            volumen_contorno();
        }
    }
}

// Ranura en U pasante, con chaflán superior y boca redondeada (FR-002, FR-003)
module vaciado_ranura() {
    // U: fondo semicircular más tramo recto abierto al frente; atraviesa toda la altura
    translate([ancho / 2, centro_ranura_y, -1]) {
        cylinder(r = radio_ranura, h = altura_placa + 2);
        translate([-radio_ranura, 0, 0])
            cube([ancho_ranura, profundidad - centro_ranura_y + 1, altura_placa + 2]);
    }
    if (chaflan_ranura > 0) chaflan_ranura_superior();
    if (radio_esquinas_util > 0) {
        redondeo_boca_ranura(ancho / 2 - radio_ranura, -1);
        redondeo_boca_ranura(ancho / 2 + radio_ranura, 1);
    }
}

// Chaflán a 45° en el borde superior de la ranura (FR-003). Por encima de la bandeja el
// vaciado continúa en vertical con el ancho ampliado, para que los labios no queden en
// voladizo sobre el chaflán (FR-011)
module chaflan_ranura_superior() {
    radio_chaflan = radio_ranura + chaflan_ranura + eps;
    // Fondo semicircular: cono que se abre hacia arriba más cilindro vertical
    translate([ancho / 2, centro_ranura_y, espesor - chaflan_ranura]) {
        cylinder(h = chaflan_ranura + eps, r1 = radio_ranura, r2 = radio_chaflan);
        translate([0, 0, chaflan_ranura])
            cylinder(r = radio_chaflan, h = altura_placa + 1 - espesor);
    }
    // Tramo recto: prisma de perfil (X, Z) trapecio + rectángulo a lo largo de Y, desde el
    // centro de la ranura hasta pasado el frente. prisma_yz extruye en X; el giro de -90°
    // en Z lleva su eje Y local a X y su eje X local a -Y
    translate([ancho / 2, 0, 0])
        rotate([0, 0, -90])
            prisma_yz([
                [-radio_ranura, espesor - chaflan_ranura],
                [radio_ranura, espesor - chaflan_ranura],
                [radio_chaflan, espesor + eps],
                [radio_chaflan, altura_placa + 1],
                [-radio_chaflan, altura_placa + 1],
                [-radio_chaflan, espesor + eps]
            ], -(profundidad + 1), profundidad + 1 - centro_ranura_y);
}

// Redondeo vertical de una esquina de la boca de la ranura (FR-003)
// x_esquina: X del borde de la ranura; signo: -1 carril izquierdo, +1 carril derecho
module redondeo_boca_ranura(x_esquina, signo) {
    difference() {
        translate([signo < 0 ? x_esquina - radio_esquinas_util : x_esquina - eps,
                   profundidad - radio_esquinas_util, -1])
            cube([radio_esquinas_util + eps, radio_esquinas_util + 1, altura_placa + 2]);
        translate([x_esquina + signo * radio_esquinas_util, profundidad - radio_esquinas_util, -2])
            cylinder(r = radio_esquinas_util, h = altura_placa + 4);
    }
}

// Orificios pasantes con avellanado a 90° en la cara frontal de la placa (FR-004, FR-007, FR-009)
module vaciado_tornillos() {
    for (x = tornillo_x)
        translate([x, 0, tornillo_z])
            rotate([-90, 0, 0]) {    // eje del tornillo a lo largo de +Y
                translate([0, 0, -1])
                    cylinder(d = diametro_orificio, h = espesor + 2);
                translate([0, 0, espesor - profundidad_avellanado])
                    cylinder(h = profundidad_avellanado + 1,
                             d1 = diametro_orificio,
                             d2 = diametro_orificio + 2 * (profundidad_avellanado + 1));
            }
}
